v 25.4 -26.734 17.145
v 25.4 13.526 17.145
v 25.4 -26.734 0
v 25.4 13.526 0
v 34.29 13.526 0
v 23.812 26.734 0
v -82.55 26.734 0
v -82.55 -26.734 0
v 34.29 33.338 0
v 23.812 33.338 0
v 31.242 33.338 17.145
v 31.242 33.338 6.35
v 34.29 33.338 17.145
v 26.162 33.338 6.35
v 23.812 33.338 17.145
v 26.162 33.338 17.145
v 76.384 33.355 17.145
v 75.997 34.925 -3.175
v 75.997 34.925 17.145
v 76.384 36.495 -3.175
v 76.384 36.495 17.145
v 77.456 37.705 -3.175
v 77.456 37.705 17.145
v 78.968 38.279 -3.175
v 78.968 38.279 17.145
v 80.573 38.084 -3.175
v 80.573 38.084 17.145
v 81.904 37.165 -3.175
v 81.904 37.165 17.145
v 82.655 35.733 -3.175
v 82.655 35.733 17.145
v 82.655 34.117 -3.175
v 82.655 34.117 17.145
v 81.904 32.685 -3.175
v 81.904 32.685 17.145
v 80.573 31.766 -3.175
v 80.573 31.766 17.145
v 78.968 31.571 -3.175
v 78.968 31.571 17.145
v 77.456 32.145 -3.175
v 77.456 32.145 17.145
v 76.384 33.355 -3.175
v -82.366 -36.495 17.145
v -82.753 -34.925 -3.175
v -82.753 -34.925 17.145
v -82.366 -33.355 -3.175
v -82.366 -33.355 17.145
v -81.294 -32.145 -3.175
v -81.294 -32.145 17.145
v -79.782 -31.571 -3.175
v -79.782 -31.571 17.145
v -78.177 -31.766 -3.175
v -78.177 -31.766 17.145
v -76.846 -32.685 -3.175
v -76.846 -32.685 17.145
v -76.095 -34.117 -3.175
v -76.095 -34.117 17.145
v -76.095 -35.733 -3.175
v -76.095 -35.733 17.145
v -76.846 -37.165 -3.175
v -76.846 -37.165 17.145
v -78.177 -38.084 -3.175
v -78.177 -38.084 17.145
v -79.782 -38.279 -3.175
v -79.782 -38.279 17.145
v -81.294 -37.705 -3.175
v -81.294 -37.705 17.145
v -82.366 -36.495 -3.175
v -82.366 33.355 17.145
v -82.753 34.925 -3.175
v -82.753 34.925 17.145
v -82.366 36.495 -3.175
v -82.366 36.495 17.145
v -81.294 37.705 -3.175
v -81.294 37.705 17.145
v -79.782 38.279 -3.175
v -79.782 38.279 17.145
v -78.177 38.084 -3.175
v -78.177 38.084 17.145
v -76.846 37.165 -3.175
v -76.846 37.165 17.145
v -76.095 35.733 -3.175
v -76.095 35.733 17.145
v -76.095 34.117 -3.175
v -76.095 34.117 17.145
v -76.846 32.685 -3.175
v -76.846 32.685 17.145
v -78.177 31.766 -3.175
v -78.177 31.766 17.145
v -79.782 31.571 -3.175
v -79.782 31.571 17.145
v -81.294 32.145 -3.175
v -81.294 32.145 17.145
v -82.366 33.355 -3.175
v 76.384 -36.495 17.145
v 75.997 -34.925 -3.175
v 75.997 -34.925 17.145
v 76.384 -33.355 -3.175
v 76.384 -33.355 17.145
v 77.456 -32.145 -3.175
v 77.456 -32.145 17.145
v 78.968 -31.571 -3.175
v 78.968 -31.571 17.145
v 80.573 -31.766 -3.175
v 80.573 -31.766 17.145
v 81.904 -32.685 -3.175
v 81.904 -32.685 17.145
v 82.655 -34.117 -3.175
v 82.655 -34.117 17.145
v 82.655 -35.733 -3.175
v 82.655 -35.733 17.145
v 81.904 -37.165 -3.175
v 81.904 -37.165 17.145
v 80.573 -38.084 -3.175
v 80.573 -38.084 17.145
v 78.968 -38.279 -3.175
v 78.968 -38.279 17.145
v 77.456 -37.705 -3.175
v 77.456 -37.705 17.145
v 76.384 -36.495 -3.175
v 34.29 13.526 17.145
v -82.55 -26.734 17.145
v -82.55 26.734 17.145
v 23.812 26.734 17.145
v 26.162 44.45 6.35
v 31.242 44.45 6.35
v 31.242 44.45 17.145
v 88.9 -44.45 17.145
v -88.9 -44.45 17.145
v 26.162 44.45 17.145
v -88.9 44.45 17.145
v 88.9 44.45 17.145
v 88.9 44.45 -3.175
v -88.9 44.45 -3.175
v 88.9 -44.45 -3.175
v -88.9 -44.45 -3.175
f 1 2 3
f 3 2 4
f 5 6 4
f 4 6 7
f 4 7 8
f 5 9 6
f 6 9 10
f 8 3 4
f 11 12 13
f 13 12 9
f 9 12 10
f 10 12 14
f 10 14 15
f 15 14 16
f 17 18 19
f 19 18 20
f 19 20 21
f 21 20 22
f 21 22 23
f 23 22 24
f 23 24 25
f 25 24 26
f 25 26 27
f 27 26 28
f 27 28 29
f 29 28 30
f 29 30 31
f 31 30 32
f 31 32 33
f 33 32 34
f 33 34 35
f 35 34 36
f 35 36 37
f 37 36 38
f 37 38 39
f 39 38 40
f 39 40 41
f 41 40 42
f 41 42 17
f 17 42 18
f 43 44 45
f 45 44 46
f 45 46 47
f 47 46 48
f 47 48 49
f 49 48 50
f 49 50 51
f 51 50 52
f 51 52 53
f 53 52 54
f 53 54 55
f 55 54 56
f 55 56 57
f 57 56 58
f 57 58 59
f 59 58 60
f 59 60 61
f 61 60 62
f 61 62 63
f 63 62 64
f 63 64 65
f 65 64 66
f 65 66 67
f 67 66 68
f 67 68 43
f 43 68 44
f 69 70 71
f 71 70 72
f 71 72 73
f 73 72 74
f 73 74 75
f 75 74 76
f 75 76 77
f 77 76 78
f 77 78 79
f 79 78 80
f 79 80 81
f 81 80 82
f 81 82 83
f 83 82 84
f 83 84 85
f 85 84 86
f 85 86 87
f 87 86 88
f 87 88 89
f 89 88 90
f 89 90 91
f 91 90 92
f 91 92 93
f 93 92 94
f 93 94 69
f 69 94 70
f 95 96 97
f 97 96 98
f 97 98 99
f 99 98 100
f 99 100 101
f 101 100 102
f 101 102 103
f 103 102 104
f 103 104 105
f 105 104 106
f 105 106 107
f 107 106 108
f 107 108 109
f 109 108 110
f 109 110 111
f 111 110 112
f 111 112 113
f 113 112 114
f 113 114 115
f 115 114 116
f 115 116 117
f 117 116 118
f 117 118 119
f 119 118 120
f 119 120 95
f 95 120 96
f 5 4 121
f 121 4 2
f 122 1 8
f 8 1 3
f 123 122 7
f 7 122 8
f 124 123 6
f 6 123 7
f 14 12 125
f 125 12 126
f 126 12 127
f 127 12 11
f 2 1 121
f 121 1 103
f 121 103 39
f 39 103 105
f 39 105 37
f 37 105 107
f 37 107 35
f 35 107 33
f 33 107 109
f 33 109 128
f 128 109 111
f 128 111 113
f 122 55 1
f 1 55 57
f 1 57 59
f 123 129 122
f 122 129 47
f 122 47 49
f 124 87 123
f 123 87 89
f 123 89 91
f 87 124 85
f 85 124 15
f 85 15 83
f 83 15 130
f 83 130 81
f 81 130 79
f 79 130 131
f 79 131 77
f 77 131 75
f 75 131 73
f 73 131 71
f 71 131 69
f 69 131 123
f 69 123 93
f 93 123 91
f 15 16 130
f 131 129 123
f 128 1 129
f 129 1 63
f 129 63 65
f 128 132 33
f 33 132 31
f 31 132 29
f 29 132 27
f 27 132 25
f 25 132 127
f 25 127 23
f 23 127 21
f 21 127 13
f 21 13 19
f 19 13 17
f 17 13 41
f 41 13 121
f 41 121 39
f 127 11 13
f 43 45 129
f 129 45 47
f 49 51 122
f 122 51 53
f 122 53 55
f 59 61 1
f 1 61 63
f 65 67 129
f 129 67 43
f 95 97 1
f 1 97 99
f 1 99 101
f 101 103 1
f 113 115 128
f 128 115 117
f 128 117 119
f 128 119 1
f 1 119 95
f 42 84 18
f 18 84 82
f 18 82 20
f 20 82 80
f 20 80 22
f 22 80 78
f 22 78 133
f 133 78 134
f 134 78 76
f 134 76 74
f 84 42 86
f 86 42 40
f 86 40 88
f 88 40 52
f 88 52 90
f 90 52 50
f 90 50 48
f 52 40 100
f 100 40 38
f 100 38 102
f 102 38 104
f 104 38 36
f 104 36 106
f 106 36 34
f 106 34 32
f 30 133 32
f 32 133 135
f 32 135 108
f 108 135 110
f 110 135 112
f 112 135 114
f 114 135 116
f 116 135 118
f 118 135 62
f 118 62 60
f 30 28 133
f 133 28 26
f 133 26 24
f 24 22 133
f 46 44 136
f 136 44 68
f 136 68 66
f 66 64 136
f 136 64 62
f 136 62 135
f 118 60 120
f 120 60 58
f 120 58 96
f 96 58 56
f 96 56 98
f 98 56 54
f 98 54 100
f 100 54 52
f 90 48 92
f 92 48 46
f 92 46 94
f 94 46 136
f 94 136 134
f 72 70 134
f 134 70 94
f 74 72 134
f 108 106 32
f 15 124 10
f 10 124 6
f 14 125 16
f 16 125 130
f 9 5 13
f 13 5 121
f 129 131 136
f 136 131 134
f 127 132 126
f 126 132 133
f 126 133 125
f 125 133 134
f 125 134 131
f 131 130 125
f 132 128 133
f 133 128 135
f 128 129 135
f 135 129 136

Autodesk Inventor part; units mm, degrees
ref_plane "YZ Plane" through (0, 0, 0) normal (1, 0, 0) x (0, 1, 0)
sketch "Sketch1" plane through (0, 0, 0) normal (0, 0, 1) x (1, 0, 0)
  line L0 (88.9, -44.45) -> (-88.9, -44.45)
  line L1 (-88.9, -44.45) -> (-88.9, 44.45)
  line L2 (-88.9, 44.45) -> (88.9, 44.45)
  line L3 (88.9, 44.45) -> (88.9, -44.45)
  line L4 (88.9, -44.45) -> (-88.9, 44.45) construction
  line L5 (-88.9, -44.45) -> (88.9, 44.45) construction
  line L6 (25.4, -26.7335) -> (-82.55, -26.7335)
  line L7 (-82.55, -26.7335) -> (-82.55, 26.7335)
  line L8 (-82.55, 26.7335) -> (25.4, 26.7335)
  line L9 (25.4, 26.7335) -> (25.4, -26.7335)
  line L10 (25.4, -26.7335) -> (-82.55, 26.7335) construction
  line L11 (-82.55, -26.7335) -> (25.4, 26.7335) construction
  line L12 (34.29, 23.1775) -> (20.955, 23.1775)
  line L13 (20.955, 23.1775) -> (20.955, 13.5255)
  line L14 (20.955, 13.5255) -> (34.29, 13.5255)
  line L15 (34.29, 13.5255) -> (34.29, 23.1775)
  line L16 (34.29, 23.1775) -> (20.955, 13.5255) construction
  line L17 (20.955, 23.1775) -> (34.29, 13.5255) construction
  line L18 (23.8125, 33.3375) -> (26.162, 33.3375)
  line L19 (26.162, 33.3375) -> (26.162, 44.45)
  line L20 (31.242, 44.45) -> (31.242, 33.3375)
  line L21 (31.242, 33.3375) -> (34.29, 33.3375)
  line L22 (34.29, 33.3375) -> (34.29, 23.1775)
  line L23 (26.162, 33.3375) -> (31.242, 33.3375) construction
  line L24 (26.162, 44.45) -> (31.242, 44.45)
  line L25 (25.4, 23.1775) -> (34.29, 23.1775)
  line L26 (25.4, 23.1775) -> (25.4, 26.7335)
  line L27 (25.4, 26.7335) -> (25.4, 26.7335)
  line L28 (23.8125, 33.3375) -> (23.8125, 26.7335)
  point P0 (0, 0)
  point P1 (-28.575, 0)
  point P2 (-28.575, 0)
  point P3 (0, 0)
  point P4 (27.6225, 18.3515)
  point P5 (28.702, 33.3375)
  dimension "d0" = 177.8
  dimension "d1" = 88.9
  dimension "d2" = 107.95
  dimension "d3" = 53.467
  dimension "d4" = 6.35
  dimension "d5" = 103.505
  dimension "d7" = 8.382
  dimension "d8" = 9.652
  dimension "d13" = 13.335
  dimension "d15" = 5.08
  dimension "d17" = 10.16
  dimension "d24" = 1.5875
  dimension "d25" = 5.588
extrude "Extrusion1" add sketch "Sketch1" along normal blind 17.145
extrude "Extrusion2" cut sketch "Sketch1" along normal through all contours L20 L21 L22 L12 L9 L8 L28 L18 L19 L2
sketch "Sketch3" plane through (0, 0, 0) normal (0, 0, -1) x (-1, 0, 0)
  line L0 (-31.242, 33.3375) -> (-31.242, 44.45) projected
  line L1 (-31.242, 44.45) -> (-88.9, 44.45) projected
  line L2 (-88.9, 44.45) -> (-88.9, -44.45) projected
  line L3 (-88.9, -44.45) -> (88.9, -44.45) projected
  line L4 (88.9, -44.45) -> (88.9, 44.45) projected
  line L5 (88.9, 44.45) -> (-26.162, 44.45) projected
  line L6 (-26.162, 44.45) -> (-26.162, 33.3375) projected
  line L7 (-26.162, 33.3375) -> (-23.8125, 33.3375) projected
  line L8 (-34.29, 23.1775) -> (-34.29, 33.3375) projected
  line L9 (-34.29, 33.3375) -> (-31.242, 33.3375) projected
  line L10 (-26.162, 44.45) -> (88.9, 44.45) projected
  line L11 (-26.162, 44.45) -> (-31.242, 44.45)
  line L12 (-23.8125, 33.3375) -> (-23.8125, 26.7335) projected
  line L13 (-23.8125, 26.7335) -> (-25.4, 26.7335) projected
  line L14 (-25.4, 26.7335) -> (-25.4, 23.1775) projected
  line L15 (-25.4, 23.1775) -> (-34.29, 23.1775) projected
  point P0 (0, 0)
extrude "Extrusion4" add sketch "Sketch3" along normal blind 3.175
ref_plane "Work Plane1" through (-28.575, -26.7335, 12.7) normal (1, 0, 0) x (0, 0, -1)
ref_plane "Work Plane2" through (-82.55, 0, 12.7) normal (0, -1, 0) x (1, 0, 0)
sketch "Sketch5" plane through (0, 0, 17.145) normal (0, 0, 1) x (1, 0, 0)
  line L0 (69.85, -25.4) -> (33.02, -25.4)
  line L1 (33.02, -25.4) -> (33.02, 25.4)
  line L2 (33.02, 25.4) -> (69.85, 25.4)
  line L3 (69.85, 25.4) -> (69.85, -25.4)
  line L4 (69.85, -25.4) -> (33.02, 25.4) construction
  line L5 (33.02, -25.4) -> (69.85, 25.4) construction
  line L6 (124.46, 0) -> (-124.46, 0) projected
  line L7 (88.9, -44.45) -> (88.9, 44.45) projected
  line L8 (69.85, 25.4) -> (63.5, 25.4)
  line L9 (63.5, 25.4) -> (63.5, 44.45)
  line L10 (63.5, 44.45) -> (69.85, 44.45)
  line L11 (69.85, 44.45) -> (69.85, 25.4)
  line L12 (88.9, 44.45) -> (-88.9, 44.45) projected
  point P0 (0, 0)
  point P1 (51.435, 0)
  point P2 (51.435, 0)
  point P3 (31.242, 44.45)
  dimension "d26" = 36.83
  dimension "d27" = 50.8
  dimension "d28" = 19.05
  dimension "d29" = 6.35
extrude "Extrusion5" cut sketch "Sketch5" against normal up to surface (17.145 mm away) contours L0 L1 L6 L3 | L6 L1 L2 L3 | L2 L9 L10 L11
ref_plane "Work Plane3" through (51.435, -25.4, 17.145) normal (1, 0, 0) x (0, 0, -1)
ref_plane "Work Plane4" through (33.02, 0, 17.145) normal (0, -1, 0) x (1, 0, 0)
sketch "Sketch6" plane through (0, 0, 17.145) normal (0, 0, 1) x (1, 0, 0)
  line L0 (69.85, 44.45) -> (69.85, -25.4) projected
  line L1 (69.85, -25.4) -> (33.02, -25.4) projected
  line L2 (33.02, -25.4) -> (33.02, 23.1775) projected
  line L3 (34.29, 25.4) -> (63.5, 25.4) projected
  line L4 (63.5, 25.4) -> (63.5, 44.45) projected
  line L5 (26.162, 44.45) -> (-88.9, 44.45) projected
  line L6 (-88.9, 44.45) -> (-88.9, -44.45) projected
  line L7 (-88.9, -44.45) -> (88.9, -44.45) projected
  line L8 (88.9, -44.45) -> (88.9, 44.45) projected
  line L9 (88.9, 44.45) -> (69.85, 44.45) projected
  line L10 (33.02, -25.4) -> (33.02, 25.4) projected
  line L11 (39.37, 25.4) -> (63.5, 25.4)
  line L12 (63.5, 25.4) -> (63.5, 38.1)
  line L13 (63.5, 38.1) -> (39.37, 38.1)
  line L14 (39.37, 38.1) -> (39.37, 25.4)
  line L15 (39.37, 38.1) -> (33.02, 38.1)
  line L16 (33.02, 38.1) -> (33.02, 25.4)
  line L17 (33.02, 25.4) -> (39.37, 25.4)
  line L18 (36.195, 25.4) -> (36.195, -22.225)
  line L19 (33.02, 25.4) -> (33.02, -19.05)
  line L20 (33.02, -19.05) -> (25.4, -19.05)
  line L21 (25.4, -26.7335) -> (25.4, 13.5255) projected
  line L22 (36.195, -22.225) -> (25.4, -22.225)
  line L23 (25.4, -19.05) -> (25.4, -22.225)
  line L24 (63.5, 44.45) -> (31.242, 44.45) projected
  line L25 (31.242, 44.45) -> (31.242, 33.3375) projected
  line L26 (31.242, 33.3375) -> (34.29, 33.3375) projected
  line L27 (34.29, 33.3375) -> (34.29, 25.4) projected
  line L28 (33.02, 23.1775) -> (25.4, 23.1775) projected
  line L29 (25.4, 23.1775) -> (25.4, 26.7335) projected
  line L30 (25.4, 26.7335) -> (23.8125, 26.7335) projected
  line L31 (23.8125, 26.7335) -> (23.8125, 33.3375) projected
  line L32 (23.8125, 33.3375) -> (26.162, 33.3375) projected
  line L33 (26.162, 33.3375) -> (26.162, 44.45) projected
  point P0 (0, 0)
  dimension "d32" = 12.7
  dimension "d33" = 3.175
  dimension "d34" = 3.175
  dimension "d35" = 22.225
extrude "Extrusion6" cut sketch "Sketch6" against normal blind 9.525 contours L14 L13 L4 L3
extrude "Extrusion7" cut sketch "Sketch6" against normal blind 9.525 contours L22 L21 L20 L2 | L2 L10 L17 L3 L18 L22 | L3 L27 L26 L16 L15 L14 | L16 L26 L27 L17
sketch "Sketch7" plane through (0, 0, 0) normal (0, 0, 1) x (1, 0, 0)
  line L0 (26.162, 44.45) -> (26.162, 33.3375) projected
  line L1 (26.162, 33.3375) -> (23.8125, 33.3375) projected
  line L2 (23.8125, 33.3375) -> (23.8125, 26.7335) projected
  line L3 (34.29, 25.4) -> (34.29, 33.3375) projected
  line L4 (34.29, 33.3375) -> (31.242, 33.3375) projected
  line L5 (31.242, 33.3375) -> (31.242, 44.45) projected
  line L6 (26.162, 44.45) -> (31.242, 44.45) projected
  line L7 (26.162, 33.3375) -> (26.162, 44.45) projected
  line L8 (26.162, 33.3375) -> (31.242, 33.3375)
  line L9 (23.8125, 26.7335) -> (25.4, 26.7335) projected
  line L10 (25.4, 26.7335) -> (25.4, 23.1775) projected
  line L11 (25.4, 23.1775) -> (33.02, 23.1775) projected
  line L12 (33.02, -25.4) -> (33.02, 23.1775) projected
  line L13 (69.85, -25.4) -> (33.02, -25.4) projected
  line L14 (69.85, 44.45) -> (69.85, -25.4) projected
  line L15 (63.5, 44.45) -> (69.85, 44.45) projected
  line L16 (63.5, 25.4) -> (63.5, 44.45) projected
  line L17 (34.29, 25.4) -> (63.5, 25.4) projected
  point P0 (0, 0)
extrude "Extrusion8" add sketch "Sketch7" along normal blind 6.35 contours L6 L5 L8 L0
extrude "Extrusion9" cut sketch "Sketch1" along normal through all contours L8 L9 L12 L13 L14 L6 L7 | L9 L14 L13 L12
sketch "Sketch8" plane through (0, 0, 17.145) normal (0, 0, 1) x (1, 0, 0)
  line L0 (20.955, 13.5255) -> (34.29, 13.5255) projected
  line L1 (20.955, 23.1775) -> (20.955, 13.5255) projected
  line L2 (34.29, 23.1775) -> (20.955, 23.1775) projected
  line L3 (34.29, 13.5255) -> (34.29, 23.1775)
  point P0 (0, 0)
extrude "Extrusion10" cut sketch "Sketch8" against normal up to surface (17.145 mm away)
sketch "Sketch10" plane through (0, 0, -3.175) normal (0, 0, -1) x (-1, 0, 0)
  circle A0 centre (-79.375, 34.925) radius 3.3782 projected
  circle A1 centre (79.375, -34.925) radius 3.3782 projected
  circle A2 centre (79.375, 34.925) radius 3.3782 projected
  circle A3 centre (-79.375, -34.925) radius 3.3782 projected
  line L0 (88.9, 44.45) -> (-88.9, 44.45) projected
  line L1 (-88.9, 44.45) -> (-88.9, -44.45) projected
  line L2 (-88.9, -44.45) -> (88.9, -44.45) projected
  line L3 (88.9, -44.45) -> (88.9, 44.45) projected
  point P0 (0, 0)
extrude "Extrusion11" cut sketch "Sketch10" against normal through all contours A0 | A1 | A2 | A3
sketch "Sketch12" plane through (0, 0, 17.145) normal (0, 0, 1) x (1, 0, 0)
  circle A0 centre (-79.375, 34.925) radius 3.3782 projected
  circle A1 centre (79.375, 34.925) radius 3.3782 projected
  circle A2 centre (-79.375, -34.925) radius 3.3782 projected
  circle A3 centre (79.375, -34.925) radius 3.3782 projected
  line L0 (-82.55, 26.7335) -> (23.8125, 26.7335) projected
  line L1 (23.8125, 26.7335) -> (23.8125, 33.3375) projected
  line L2 (23.8125, 33.3375) -> (26.162, 33.3375) projected
  line L3 (26.162, 33.3375) -> (26.162, 44.45) projected
  line L4 (26.162, 44.45) -> (-88.9, 44.45) projected
  line L5 (-88.9, 44.45) -> (-88.9, -44.45) projected
  line L6 (-88.9, -44.45) -> (88.9, -44.45) projected
  line L7 (88.9, -44.45) -> (88.9, 44.45) projected
  line L8 (88.9, 44.45) -> (69.85, 44.45) projected
  line L9 (69.85, 44.45) -> (69.85, -25.4) projected
  line L10 (69.85, -25.4) -> (33.02, -25.4) projected
  line L11 (33.02, -25.4) -> (33.02, -22.225) projected
  line L12 (33.02, -22.225) -> (25.4, -22.225) projected
  line L13 (25.4, -22.225) -> (25.4, -26.7335) projected
  line L14 (25.4, -26.7335) -> (-82.55, -26.7335) projected
  line L15 (-82.55, -26.7335) -> (-82.55, 26.7335) projected
  line L16 (33.02, 13.5255) -> (25.4, 13.5255) projected
  line L17 (69.85, 44.45) -> (69.85, -25.4) projected
  line L18 (25.4, 13.5255) -> (69.85, 13.5255)
  line L19 (69.85, 13.5255) -> (69.85, -25.4)
  line L20 (69.85, -25.4) -> (25.4, -25.4)
  line L21 (25.4, -25.4) -> (25.4, 13.5255)
  line L22 (33.02, 33.3375) -> (33.02, 38.1) projected
  line L23 (33.02, 38.1) -> (33.02, 33.3375)
  line L24 (33.02, 33.3375) -> (69.85, 33.3375)
  line L25 (69.85, 33.3375) -> (69.85, 38.1)
  line L26 (69.85, 38.1) -> (33.02, 38.1)
  line L27 (69.85, 33.3375) -> (34.29, 33.3375)
  line L28 (34.29, 33.3375) -> (34.29, 13.5255)
  line L29 (34.29, 13.5255) -> (69.85, 13.5255)
  line L30 (69.85, 13.5255) -> (69.85, 33.3375)
  line L31 (63.5, 44.45) -> (69.85, 44.45)
  line L32 (69.85, 44.45) -> (69.85, 38.1)
  line L33 (69.85, 38.1) -> (63.5, 38.1)
  line L34 (63.5, 38.1) -> (63.5, 44.45)
  point P0 (0, 0)
extrude "Extrusion12" add sketch "Sketch12" against normal up to surface (17.145 mm away) contours L13 L12 L11 L20 | L21 L16 L18 L9 L10 L11 L12 | L18 L28 L24 L9 | L24 L22 L26 L9 | L26 L34 L31 L9
sketch "Sketch9" plane through (0, 0, -3.175) normal (0, 0, -1) x (-1, 0, 0)
  point P0 (79.375, -34.925)
  point P1 (79.375, 34.925)
  point P2 (-79.375, 34.925)
  point P3 (-79.375, -34.925)
equation "\"d34\" = d33"
properties part number "ArduinPanel2"
